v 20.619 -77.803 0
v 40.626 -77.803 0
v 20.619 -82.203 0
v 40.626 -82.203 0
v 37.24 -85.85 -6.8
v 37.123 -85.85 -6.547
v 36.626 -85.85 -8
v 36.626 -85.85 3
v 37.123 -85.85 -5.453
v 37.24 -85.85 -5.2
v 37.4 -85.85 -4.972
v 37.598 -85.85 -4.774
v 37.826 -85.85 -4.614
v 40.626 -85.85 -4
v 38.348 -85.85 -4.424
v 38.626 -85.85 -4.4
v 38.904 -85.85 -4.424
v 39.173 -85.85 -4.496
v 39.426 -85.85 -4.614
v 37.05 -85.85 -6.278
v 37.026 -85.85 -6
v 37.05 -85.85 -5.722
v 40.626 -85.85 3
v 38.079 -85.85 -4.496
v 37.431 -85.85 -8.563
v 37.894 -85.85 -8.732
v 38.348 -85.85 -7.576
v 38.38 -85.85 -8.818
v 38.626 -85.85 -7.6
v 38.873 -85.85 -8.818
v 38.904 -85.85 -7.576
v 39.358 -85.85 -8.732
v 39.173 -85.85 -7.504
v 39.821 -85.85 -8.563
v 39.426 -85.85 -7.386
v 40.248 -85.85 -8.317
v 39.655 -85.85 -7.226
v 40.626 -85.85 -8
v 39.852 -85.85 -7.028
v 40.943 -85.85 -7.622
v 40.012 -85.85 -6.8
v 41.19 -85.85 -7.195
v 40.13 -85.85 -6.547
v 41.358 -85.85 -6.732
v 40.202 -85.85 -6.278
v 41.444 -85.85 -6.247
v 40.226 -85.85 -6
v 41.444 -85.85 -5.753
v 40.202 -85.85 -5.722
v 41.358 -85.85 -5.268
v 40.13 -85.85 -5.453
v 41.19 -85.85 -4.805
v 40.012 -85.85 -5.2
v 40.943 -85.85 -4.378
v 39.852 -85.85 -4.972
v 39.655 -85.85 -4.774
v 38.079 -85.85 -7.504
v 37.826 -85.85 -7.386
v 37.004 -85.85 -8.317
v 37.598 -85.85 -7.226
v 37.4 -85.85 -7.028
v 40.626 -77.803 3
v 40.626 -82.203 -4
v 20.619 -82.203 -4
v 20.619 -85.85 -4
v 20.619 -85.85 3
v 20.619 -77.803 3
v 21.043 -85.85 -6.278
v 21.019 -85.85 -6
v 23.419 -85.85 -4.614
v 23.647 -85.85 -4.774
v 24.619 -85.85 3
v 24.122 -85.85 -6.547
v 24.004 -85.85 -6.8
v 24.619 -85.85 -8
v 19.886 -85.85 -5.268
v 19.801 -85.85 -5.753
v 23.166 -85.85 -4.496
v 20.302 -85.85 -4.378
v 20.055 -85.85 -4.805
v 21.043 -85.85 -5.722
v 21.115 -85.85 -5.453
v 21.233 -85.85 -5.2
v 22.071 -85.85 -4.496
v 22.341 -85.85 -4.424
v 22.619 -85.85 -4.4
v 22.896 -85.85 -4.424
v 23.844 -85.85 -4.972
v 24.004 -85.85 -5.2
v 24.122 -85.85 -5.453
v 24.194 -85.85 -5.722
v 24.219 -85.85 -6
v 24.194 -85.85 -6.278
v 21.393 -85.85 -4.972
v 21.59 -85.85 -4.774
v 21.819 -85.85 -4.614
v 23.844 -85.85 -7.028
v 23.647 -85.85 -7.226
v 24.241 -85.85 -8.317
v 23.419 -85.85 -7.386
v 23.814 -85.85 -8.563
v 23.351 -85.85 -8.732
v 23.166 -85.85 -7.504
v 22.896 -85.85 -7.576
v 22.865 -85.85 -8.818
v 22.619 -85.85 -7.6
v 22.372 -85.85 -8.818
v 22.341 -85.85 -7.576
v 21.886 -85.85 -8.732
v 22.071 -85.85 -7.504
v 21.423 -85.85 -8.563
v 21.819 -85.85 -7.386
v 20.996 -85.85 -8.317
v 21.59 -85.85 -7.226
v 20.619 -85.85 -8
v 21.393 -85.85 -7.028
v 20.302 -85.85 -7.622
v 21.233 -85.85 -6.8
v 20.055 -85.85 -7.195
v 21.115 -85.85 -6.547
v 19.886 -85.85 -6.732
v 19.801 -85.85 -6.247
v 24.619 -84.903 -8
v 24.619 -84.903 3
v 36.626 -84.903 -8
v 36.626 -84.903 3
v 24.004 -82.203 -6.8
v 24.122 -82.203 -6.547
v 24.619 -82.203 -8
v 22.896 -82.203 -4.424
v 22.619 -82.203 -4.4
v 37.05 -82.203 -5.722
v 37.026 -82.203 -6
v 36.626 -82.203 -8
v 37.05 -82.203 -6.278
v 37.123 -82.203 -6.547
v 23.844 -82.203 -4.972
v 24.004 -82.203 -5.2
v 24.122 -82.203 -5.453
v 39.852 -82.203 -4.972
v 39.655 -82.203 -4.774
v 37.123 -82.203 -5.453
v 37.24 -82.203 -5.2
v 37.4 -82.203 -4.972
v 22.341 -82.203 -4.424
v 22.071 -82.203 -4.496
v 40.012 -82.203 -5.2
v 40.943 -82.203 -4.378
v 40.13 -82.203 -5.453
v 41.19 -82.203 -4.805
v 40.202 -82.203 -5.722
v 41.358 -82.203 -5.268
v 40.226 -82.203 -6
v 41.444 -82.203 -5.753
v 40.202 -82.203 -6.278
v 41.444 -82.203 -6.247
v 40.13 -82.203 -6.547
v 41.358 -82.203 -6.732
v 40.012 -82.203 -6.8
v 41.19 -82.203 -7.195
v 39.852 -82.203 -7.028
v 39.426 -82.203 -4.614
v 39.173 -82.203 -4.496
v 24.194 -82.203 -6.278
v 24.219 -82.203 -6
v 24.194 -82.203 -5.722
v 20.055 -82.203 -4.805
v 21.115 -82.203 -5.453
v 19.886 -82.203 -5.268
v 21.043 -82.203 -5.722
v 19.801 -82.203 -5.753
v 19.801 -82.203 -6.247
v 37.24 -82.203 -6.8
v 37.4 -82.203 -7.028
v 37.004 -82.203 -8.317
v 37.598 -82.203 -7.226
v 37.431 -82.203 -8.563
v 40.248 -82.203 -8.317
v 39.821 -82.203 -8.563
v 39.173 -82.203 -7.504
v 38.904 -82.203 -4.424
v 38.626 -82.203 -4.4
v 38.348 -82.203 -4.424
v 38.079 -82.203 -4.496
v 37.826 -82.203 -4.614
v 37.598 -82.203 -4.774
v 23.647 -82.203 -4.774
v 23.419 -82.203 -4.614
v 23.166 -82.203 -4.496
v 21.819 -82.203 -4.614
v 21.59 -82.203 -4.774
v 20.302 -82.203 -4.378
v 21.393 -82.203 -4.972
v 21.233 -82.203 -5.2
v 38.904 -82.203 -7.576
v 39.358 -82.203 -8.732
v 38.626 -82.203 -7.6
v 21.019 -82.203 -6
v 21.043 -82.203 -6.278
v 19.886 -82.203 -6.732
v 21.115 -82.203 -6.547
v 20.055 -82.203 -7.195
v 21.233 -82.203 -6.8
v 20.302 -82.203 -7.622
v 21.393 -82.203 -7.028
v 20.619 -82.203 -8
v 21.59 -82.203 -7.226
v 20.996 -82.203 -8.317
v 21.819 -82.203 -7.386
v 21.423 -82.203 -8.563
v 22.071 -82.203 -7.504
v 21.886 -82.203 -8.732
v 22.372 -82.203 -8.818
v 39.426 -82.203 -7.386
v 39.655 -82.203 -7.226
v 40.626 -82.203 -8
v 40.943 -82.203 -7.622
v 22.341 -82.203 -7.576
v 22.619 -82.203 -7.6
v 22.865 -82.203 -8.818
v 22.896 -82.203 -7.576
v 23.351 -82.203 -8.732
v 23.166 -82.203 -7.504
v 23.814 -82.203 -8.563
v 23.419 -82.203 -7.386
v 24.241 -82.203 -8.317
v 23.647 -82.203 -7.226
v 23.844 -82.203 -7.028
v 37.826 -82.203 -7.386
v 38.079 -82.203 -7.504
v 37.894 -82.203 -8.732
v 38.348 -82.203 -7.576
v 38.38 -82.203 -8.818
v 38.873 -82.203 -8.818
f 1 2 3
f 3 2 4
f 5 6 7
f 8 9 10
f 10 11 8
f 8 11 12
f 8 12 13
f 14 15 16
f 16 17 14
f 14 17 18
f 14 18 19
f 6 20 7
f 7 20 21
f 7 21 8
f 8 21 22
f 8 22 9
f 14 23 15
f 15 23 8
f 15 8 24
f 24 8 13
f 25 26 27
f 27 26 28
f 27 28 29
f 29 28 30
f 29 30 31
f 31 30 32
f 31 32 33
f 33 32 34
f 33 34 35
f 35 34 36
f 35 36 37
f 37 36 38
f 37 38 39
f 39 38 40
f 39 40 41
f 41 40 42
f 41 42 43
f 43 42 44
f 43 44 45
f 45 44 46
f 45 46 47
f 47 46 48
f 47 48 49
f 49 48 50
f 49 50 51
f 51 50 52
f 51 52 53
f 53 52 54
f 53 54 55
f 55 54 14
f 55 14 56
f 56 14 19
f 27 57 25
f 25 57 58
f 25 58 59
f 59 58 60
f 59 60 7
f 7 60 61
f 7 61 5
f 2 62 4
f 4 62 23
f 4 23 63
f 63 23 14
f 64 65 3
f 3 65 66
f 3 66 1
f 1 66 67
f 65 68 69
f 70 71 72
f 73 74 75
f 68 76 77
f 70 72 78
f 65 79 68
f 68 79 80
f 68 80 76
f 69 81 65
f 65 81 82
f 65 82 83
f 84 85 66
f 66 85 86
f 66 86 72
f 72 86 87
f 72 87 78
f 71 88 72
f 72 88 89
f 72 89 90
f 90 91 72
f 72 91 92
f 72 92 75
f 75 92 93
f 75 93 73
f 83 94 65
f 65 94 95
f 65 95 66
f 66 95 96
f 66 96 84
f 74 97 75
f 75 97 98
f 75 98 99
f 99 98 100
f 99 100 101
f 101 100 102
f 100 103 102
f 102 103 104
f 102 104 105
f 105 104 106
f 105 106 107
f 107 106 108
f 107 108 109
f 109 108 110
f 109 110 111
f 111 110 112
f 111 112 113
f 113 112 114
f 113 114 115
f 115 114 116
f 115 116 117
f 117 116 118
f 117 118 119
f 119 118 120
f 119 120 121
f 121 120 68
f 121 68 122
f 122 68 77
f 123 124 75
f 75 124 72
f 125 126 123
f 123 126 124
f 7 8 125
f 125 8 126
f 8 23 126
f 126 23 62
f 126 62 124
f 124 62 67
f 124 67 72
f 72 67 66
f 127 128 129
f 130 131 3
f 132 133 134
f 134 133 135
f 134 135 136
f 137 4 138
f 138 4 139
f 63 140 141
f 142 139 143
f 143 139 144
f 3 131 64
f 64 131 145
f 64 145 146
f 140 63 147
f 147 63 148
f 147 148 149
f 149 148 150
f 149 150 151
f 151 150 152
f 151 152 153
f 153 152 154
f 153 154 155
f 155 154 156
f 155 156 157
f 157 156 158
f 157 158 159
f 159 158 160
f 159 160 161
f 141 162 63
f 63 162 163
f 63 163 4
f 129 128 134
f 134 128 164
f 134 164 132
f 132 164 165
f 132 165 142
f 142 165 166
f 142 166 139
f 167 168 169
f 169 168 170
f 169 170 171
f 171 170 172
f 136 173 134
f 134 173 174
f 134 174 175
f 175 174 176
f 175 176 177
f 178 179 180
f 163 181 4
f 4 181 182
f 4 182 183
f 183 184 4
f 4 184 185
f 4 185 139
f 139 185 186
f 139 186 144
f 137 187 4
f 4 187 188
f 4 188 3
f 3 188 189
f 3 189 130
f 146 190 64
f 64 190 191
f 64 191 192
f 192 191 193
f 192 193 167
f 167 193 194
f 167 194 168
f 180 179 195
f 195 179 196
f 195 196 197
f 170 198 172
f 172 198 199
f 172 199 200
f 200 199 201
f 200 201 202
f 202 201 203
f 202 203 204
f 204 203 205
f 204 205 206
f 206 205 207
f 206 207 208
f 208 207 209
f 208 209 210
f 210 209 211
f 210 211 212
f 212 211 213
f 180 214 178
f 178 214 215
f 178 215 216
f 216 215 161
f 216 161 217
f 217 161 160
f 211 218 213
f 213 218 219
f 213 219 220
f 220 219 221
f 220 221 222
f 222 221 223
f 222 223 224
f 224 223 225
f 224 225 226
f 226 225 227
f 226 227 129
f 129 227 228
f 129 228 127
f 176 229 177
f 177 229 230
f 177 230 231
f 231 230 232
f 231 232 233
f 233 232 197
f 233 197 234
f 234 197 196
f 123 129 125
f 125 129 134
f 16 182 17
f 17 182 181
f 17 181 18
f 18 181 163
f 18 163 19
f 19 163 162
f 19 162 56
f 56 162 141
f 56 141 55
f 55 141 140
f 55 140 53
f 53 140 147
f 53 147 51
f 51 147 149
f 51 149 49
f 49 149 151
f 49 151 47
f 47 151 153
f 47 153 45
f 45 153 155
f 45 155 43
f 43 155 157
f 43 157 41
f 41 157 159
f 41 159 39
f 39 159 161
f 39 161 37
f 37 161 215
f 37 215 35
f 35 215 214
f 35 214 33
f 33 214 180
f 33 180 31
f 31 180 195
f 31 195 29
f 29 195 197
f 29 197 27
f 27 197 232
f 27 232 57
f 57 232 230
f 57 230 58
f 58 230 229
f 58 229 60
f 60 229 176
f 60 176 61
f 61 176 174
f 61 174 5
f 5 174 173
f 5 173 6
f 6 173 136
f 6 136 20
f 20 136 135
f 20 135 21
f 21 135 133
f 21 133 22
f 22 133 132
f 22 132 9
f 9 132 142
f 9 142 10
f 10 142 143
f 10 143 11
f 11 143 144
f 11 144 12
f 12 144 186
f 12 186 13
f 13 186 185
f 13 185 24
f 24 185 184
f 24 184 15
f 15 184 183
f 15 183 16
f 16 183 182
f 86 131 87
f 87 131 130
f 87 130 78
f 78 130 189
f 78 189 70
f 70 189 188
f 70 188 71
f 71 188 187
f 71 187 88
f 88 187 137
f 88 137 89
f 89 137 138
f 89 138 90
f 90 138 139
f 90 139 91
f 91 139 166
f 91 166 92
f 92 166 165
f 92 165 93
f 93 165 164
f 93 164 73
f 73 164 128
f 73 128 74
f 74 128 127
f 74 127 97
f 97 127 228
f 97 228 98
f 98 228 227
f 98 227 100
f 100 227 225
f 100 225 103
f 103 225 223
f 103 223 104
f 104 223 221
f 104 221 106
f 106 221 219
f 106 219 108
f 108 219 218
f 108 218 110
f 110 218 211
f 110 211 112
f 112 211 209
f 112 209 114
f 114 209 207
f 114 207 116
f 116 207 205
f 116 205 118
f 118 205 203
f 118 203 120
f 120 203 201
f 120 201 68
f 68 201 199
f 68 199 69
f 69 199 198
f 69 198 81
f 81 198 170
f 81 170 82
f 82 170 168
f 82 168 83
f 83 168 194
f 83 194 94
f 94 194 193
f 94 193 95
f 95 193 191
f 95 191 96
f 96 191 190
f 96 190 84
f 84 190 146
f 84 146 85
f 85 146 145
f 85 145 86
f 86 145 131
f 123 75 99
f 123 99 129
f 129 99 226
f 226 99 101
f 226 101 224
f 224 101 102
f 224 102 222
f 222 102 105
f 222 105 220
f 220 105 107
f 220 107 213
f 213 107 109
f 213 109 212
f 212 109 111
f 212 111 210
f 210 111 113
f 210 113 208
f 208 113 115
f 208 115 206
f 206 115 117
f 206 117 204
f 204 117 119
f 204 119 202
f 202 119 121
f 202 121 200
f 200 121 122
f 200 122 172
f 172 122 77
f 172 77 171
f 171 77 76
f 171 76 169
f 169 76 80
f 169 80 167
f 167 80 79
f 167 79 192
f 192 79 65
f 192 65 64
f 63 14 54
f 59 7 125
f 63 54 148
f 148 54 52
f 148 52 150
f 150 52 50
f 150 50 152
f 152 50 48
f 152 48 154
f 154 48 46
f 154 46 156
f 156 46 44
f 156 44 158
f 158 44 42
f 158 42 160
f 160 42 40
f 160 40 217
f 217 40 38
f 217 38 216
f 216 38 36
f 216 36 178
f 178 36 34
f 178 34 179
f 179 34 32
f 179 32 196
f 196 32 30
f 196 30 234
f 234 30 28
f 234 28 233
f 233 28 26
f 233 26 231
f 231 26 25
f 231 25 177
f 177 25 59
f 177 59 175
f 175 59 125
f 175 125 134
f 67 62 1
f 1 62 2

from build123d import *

# Parameters (mm, degrees)
BOSS_EXTRUDE1_DEPTH      = 3
SKETCH2_W                = 20.0076
SKETCH2_H                = 4.999999987
BOSS_EXTRUDE2_DEPTH      = 8
BOSS_EXTRUDE3_DEPTH      = 8
SKETCH4_W                = 12.0076
SKETCH4_H                = 1.4
CUT_EXTRUDE1_DEPTH       = 27.7
M3_CLEARANCE_HOLE1_D     = 3.2
M3_CLEARANCE_HOLE1_DEPTH = 15.5
M3_CLEARANCE_HOLE1_TIP   = 0.96137699
SKETCH7_W                = 8
SKETCH7_H                = 0.4
CUT_EXTRUDE2_DEPTH       = 28.5
BOSS_EXTRUDE4_DEPTH      = 4.6
BOSS_EXTRUDE5_DEPTH      = 3.647111
SKETCH10_W               = 25.759770256
SKETCH10_H               = 7.605956873
CUT_EXTRUDE3_DEPTH       = 15


with BuildPart() as part:
    # Sketch1 → Boss-Extrude1 (new body)
    with BuildSketch(Plane.XY):
        Polygon((24.618539046, -84.902707764), (24.618539046, -85.849818272), (20.618539046, -85.849818272), (20.618539046, -73.202707764), (40.626139046, -73.202707764), (40.626139046, -85.849818272), (36.626139046, -85.849818272), (36.626139046, -84.902707764), align=None)
    extrude(amount=BOSS_EXTRUDE1_DEPTH)

    # Sketch2 → Boss-Extrude2 (add)
    with BuildSketch(Plane(origin=(0, 0, 0), x_dir=(-1, 0, 0), z_dir=(0, 0, -1))):
        with Locations((-30.622339046, -75.702707758)):
            Rectangle(SKETCH2_W, SKETCH2_H)
    extrude(amount=BOSS_EXTRUDE2_DEPTH)

    # Sketch3 → Boss-Extrude3 (add)
    with BuildSketch(Plane(origin=(0, 0, 0), x_dir=(-1, 0, 0), z_dir=(0, 0, -1))):
        Polygon((-40.626139046, -82.202707751), (-40.626139046, -85.849818272), (-36.626139046, -85.849818272), (-36.626139046, -84.902707764), (-24.618539046, -84.902707764), (-24.618539046, -85.849818272), (-20.618539046, -85.849818272), (-20.618539046, -82.202707751), align=None)
    extrude(amount=BOSS_EXTRUDE3_DEPTH)

    # Sketch4 → Cut-Extrude1 (cut)
    with BuildSketch(Plane.XY.offset(3)):
        with Locations((30.622339046, -73.902707764)):
            Rectangle(SKETCH4_W, SKETCH4_H)
    extrude(amount=-CUT_EXTRUDE1_DEPTH, mode=Mode.SUBTRACT)

    # M3 Clearance Hole1
    with Locations(Plane(origin=(0, -73.202707764, 0), x_dir=(1, 0, 0), z_dir=(0, 1, 0))):
        with Locations((22.618539046, 6), (38.626139046, 6)):
            Hole(M3_CLEARANCE_HOLE1_D / 2, depth=M3_CLEARANCE_HOLE1_DEPTH)
            with Locations((0, 0, -(M3_CLEARANCE_HOLE1_DEPTH + M3_CLEARANCE_HOLE1_TIP / 2))):  # 118° drill point
                Cone(0, M3_CLEARANCE_HOLE1_D / 2, M3_CLEARANCE_HOLE1_TIP, mode=Mode.SUBTRACT)

    # Sketch7 → Cut-Extrude2 (cut)
    with BuildSketch(Plane(origin=(40.626139046, 0, 0), x_dir=(0, 0, -1), z_dir=(1, 0, 0))):
        with Locations((4, -78.002707751)):
            Rectangle(SKETCH7_W, SKETCH7_H)
    extrude(amount=-CUT_EXTRUDE2_DEPTH, mode=Mode.SUBTRACT)

    # Sketch8 → Boss-Extrude4 (add)
    with BuildSketch(Plane(origin=(0, -73.202707764, 0), x_dir=(1, 0, 0), z_dir=(0, 1, 0))):
        with BuildLine():
            ThreePointArc((24.618539046, 8), (22.618539046, 8.828427125), (20.618539046, 8))
            Line((20.618539046, 8), (24.618539046, 8))
        make_face()
        with BuildLine():
            ThreePointArc((20.618539046, 8), (19.790111921, 6), (20.618539046, 4))
            Line((20.618539046, 4), (20.618539046, 8))
        make_face()
        with BuildLine():
            Line((36.626139046, 8), (40.626139046, 8))
            ThreePointArc((40.626139046, 8), (38.626139046, 8.828427125), (36.626139046, 8))
        make_face()
        with BuildLine():
            ThreePointArc((40.626139046, 4), (41.45456617, 6), (40.626139046, 8))
            Line((40.626139046, 8), (40.626139046, 4))
        make_face()
    extrude(amount=-BOSS_EXTRUDE4_DEPTH)

    # Sketch9 → Boss-Extrude5 (add)
    with BuildSketch(Plane.XZ.offset(85.849818272)):
        with BuildLine():
            Line((20.618539046, -8), (20.618539046, -4))
            ThreePointArc((20.618539046, -4), (19.790111921, -6), (20.618539046, -8))
        make_face()
        with BuildLine():
            Line((24.618539046, -8), (20.618539046, -8))
            ThreePointArc((20.618539046, -8), (22.618539046, -8.828427125), (24.618539046, -8))
        make_face()
        with BuildLine():
            Line((40.626139046, -8), (36.626139046, -8))
            ThreePointArc((36.626139046, -8), (38.626139046, -8.828427125), (40.626139046, -8))
        make_face()
        with BuildLine():
            Line((40.626139046, -4), (40.626139046, -8))
            ThreePointArc((40.626139046, -8), (41.45456617, -6), (40.626139046, -4))
        make_face()
    extrude(amount=-BOSS_EXTRUDE5_DEPTH)

    # Sketch10 → Cut-Extrude3 (cut)
    with BuildSketch(Plane.XY.offset(3)):
        with Locations((29.890783296, -73.999729313)):
            Rectangle(SKETCH10_W, SKETCH10_H)
    extrude(amount=-CUT_EXTRUDE3_DEPTH, mode=Mode.SUBTRACT)


solid = part.part
